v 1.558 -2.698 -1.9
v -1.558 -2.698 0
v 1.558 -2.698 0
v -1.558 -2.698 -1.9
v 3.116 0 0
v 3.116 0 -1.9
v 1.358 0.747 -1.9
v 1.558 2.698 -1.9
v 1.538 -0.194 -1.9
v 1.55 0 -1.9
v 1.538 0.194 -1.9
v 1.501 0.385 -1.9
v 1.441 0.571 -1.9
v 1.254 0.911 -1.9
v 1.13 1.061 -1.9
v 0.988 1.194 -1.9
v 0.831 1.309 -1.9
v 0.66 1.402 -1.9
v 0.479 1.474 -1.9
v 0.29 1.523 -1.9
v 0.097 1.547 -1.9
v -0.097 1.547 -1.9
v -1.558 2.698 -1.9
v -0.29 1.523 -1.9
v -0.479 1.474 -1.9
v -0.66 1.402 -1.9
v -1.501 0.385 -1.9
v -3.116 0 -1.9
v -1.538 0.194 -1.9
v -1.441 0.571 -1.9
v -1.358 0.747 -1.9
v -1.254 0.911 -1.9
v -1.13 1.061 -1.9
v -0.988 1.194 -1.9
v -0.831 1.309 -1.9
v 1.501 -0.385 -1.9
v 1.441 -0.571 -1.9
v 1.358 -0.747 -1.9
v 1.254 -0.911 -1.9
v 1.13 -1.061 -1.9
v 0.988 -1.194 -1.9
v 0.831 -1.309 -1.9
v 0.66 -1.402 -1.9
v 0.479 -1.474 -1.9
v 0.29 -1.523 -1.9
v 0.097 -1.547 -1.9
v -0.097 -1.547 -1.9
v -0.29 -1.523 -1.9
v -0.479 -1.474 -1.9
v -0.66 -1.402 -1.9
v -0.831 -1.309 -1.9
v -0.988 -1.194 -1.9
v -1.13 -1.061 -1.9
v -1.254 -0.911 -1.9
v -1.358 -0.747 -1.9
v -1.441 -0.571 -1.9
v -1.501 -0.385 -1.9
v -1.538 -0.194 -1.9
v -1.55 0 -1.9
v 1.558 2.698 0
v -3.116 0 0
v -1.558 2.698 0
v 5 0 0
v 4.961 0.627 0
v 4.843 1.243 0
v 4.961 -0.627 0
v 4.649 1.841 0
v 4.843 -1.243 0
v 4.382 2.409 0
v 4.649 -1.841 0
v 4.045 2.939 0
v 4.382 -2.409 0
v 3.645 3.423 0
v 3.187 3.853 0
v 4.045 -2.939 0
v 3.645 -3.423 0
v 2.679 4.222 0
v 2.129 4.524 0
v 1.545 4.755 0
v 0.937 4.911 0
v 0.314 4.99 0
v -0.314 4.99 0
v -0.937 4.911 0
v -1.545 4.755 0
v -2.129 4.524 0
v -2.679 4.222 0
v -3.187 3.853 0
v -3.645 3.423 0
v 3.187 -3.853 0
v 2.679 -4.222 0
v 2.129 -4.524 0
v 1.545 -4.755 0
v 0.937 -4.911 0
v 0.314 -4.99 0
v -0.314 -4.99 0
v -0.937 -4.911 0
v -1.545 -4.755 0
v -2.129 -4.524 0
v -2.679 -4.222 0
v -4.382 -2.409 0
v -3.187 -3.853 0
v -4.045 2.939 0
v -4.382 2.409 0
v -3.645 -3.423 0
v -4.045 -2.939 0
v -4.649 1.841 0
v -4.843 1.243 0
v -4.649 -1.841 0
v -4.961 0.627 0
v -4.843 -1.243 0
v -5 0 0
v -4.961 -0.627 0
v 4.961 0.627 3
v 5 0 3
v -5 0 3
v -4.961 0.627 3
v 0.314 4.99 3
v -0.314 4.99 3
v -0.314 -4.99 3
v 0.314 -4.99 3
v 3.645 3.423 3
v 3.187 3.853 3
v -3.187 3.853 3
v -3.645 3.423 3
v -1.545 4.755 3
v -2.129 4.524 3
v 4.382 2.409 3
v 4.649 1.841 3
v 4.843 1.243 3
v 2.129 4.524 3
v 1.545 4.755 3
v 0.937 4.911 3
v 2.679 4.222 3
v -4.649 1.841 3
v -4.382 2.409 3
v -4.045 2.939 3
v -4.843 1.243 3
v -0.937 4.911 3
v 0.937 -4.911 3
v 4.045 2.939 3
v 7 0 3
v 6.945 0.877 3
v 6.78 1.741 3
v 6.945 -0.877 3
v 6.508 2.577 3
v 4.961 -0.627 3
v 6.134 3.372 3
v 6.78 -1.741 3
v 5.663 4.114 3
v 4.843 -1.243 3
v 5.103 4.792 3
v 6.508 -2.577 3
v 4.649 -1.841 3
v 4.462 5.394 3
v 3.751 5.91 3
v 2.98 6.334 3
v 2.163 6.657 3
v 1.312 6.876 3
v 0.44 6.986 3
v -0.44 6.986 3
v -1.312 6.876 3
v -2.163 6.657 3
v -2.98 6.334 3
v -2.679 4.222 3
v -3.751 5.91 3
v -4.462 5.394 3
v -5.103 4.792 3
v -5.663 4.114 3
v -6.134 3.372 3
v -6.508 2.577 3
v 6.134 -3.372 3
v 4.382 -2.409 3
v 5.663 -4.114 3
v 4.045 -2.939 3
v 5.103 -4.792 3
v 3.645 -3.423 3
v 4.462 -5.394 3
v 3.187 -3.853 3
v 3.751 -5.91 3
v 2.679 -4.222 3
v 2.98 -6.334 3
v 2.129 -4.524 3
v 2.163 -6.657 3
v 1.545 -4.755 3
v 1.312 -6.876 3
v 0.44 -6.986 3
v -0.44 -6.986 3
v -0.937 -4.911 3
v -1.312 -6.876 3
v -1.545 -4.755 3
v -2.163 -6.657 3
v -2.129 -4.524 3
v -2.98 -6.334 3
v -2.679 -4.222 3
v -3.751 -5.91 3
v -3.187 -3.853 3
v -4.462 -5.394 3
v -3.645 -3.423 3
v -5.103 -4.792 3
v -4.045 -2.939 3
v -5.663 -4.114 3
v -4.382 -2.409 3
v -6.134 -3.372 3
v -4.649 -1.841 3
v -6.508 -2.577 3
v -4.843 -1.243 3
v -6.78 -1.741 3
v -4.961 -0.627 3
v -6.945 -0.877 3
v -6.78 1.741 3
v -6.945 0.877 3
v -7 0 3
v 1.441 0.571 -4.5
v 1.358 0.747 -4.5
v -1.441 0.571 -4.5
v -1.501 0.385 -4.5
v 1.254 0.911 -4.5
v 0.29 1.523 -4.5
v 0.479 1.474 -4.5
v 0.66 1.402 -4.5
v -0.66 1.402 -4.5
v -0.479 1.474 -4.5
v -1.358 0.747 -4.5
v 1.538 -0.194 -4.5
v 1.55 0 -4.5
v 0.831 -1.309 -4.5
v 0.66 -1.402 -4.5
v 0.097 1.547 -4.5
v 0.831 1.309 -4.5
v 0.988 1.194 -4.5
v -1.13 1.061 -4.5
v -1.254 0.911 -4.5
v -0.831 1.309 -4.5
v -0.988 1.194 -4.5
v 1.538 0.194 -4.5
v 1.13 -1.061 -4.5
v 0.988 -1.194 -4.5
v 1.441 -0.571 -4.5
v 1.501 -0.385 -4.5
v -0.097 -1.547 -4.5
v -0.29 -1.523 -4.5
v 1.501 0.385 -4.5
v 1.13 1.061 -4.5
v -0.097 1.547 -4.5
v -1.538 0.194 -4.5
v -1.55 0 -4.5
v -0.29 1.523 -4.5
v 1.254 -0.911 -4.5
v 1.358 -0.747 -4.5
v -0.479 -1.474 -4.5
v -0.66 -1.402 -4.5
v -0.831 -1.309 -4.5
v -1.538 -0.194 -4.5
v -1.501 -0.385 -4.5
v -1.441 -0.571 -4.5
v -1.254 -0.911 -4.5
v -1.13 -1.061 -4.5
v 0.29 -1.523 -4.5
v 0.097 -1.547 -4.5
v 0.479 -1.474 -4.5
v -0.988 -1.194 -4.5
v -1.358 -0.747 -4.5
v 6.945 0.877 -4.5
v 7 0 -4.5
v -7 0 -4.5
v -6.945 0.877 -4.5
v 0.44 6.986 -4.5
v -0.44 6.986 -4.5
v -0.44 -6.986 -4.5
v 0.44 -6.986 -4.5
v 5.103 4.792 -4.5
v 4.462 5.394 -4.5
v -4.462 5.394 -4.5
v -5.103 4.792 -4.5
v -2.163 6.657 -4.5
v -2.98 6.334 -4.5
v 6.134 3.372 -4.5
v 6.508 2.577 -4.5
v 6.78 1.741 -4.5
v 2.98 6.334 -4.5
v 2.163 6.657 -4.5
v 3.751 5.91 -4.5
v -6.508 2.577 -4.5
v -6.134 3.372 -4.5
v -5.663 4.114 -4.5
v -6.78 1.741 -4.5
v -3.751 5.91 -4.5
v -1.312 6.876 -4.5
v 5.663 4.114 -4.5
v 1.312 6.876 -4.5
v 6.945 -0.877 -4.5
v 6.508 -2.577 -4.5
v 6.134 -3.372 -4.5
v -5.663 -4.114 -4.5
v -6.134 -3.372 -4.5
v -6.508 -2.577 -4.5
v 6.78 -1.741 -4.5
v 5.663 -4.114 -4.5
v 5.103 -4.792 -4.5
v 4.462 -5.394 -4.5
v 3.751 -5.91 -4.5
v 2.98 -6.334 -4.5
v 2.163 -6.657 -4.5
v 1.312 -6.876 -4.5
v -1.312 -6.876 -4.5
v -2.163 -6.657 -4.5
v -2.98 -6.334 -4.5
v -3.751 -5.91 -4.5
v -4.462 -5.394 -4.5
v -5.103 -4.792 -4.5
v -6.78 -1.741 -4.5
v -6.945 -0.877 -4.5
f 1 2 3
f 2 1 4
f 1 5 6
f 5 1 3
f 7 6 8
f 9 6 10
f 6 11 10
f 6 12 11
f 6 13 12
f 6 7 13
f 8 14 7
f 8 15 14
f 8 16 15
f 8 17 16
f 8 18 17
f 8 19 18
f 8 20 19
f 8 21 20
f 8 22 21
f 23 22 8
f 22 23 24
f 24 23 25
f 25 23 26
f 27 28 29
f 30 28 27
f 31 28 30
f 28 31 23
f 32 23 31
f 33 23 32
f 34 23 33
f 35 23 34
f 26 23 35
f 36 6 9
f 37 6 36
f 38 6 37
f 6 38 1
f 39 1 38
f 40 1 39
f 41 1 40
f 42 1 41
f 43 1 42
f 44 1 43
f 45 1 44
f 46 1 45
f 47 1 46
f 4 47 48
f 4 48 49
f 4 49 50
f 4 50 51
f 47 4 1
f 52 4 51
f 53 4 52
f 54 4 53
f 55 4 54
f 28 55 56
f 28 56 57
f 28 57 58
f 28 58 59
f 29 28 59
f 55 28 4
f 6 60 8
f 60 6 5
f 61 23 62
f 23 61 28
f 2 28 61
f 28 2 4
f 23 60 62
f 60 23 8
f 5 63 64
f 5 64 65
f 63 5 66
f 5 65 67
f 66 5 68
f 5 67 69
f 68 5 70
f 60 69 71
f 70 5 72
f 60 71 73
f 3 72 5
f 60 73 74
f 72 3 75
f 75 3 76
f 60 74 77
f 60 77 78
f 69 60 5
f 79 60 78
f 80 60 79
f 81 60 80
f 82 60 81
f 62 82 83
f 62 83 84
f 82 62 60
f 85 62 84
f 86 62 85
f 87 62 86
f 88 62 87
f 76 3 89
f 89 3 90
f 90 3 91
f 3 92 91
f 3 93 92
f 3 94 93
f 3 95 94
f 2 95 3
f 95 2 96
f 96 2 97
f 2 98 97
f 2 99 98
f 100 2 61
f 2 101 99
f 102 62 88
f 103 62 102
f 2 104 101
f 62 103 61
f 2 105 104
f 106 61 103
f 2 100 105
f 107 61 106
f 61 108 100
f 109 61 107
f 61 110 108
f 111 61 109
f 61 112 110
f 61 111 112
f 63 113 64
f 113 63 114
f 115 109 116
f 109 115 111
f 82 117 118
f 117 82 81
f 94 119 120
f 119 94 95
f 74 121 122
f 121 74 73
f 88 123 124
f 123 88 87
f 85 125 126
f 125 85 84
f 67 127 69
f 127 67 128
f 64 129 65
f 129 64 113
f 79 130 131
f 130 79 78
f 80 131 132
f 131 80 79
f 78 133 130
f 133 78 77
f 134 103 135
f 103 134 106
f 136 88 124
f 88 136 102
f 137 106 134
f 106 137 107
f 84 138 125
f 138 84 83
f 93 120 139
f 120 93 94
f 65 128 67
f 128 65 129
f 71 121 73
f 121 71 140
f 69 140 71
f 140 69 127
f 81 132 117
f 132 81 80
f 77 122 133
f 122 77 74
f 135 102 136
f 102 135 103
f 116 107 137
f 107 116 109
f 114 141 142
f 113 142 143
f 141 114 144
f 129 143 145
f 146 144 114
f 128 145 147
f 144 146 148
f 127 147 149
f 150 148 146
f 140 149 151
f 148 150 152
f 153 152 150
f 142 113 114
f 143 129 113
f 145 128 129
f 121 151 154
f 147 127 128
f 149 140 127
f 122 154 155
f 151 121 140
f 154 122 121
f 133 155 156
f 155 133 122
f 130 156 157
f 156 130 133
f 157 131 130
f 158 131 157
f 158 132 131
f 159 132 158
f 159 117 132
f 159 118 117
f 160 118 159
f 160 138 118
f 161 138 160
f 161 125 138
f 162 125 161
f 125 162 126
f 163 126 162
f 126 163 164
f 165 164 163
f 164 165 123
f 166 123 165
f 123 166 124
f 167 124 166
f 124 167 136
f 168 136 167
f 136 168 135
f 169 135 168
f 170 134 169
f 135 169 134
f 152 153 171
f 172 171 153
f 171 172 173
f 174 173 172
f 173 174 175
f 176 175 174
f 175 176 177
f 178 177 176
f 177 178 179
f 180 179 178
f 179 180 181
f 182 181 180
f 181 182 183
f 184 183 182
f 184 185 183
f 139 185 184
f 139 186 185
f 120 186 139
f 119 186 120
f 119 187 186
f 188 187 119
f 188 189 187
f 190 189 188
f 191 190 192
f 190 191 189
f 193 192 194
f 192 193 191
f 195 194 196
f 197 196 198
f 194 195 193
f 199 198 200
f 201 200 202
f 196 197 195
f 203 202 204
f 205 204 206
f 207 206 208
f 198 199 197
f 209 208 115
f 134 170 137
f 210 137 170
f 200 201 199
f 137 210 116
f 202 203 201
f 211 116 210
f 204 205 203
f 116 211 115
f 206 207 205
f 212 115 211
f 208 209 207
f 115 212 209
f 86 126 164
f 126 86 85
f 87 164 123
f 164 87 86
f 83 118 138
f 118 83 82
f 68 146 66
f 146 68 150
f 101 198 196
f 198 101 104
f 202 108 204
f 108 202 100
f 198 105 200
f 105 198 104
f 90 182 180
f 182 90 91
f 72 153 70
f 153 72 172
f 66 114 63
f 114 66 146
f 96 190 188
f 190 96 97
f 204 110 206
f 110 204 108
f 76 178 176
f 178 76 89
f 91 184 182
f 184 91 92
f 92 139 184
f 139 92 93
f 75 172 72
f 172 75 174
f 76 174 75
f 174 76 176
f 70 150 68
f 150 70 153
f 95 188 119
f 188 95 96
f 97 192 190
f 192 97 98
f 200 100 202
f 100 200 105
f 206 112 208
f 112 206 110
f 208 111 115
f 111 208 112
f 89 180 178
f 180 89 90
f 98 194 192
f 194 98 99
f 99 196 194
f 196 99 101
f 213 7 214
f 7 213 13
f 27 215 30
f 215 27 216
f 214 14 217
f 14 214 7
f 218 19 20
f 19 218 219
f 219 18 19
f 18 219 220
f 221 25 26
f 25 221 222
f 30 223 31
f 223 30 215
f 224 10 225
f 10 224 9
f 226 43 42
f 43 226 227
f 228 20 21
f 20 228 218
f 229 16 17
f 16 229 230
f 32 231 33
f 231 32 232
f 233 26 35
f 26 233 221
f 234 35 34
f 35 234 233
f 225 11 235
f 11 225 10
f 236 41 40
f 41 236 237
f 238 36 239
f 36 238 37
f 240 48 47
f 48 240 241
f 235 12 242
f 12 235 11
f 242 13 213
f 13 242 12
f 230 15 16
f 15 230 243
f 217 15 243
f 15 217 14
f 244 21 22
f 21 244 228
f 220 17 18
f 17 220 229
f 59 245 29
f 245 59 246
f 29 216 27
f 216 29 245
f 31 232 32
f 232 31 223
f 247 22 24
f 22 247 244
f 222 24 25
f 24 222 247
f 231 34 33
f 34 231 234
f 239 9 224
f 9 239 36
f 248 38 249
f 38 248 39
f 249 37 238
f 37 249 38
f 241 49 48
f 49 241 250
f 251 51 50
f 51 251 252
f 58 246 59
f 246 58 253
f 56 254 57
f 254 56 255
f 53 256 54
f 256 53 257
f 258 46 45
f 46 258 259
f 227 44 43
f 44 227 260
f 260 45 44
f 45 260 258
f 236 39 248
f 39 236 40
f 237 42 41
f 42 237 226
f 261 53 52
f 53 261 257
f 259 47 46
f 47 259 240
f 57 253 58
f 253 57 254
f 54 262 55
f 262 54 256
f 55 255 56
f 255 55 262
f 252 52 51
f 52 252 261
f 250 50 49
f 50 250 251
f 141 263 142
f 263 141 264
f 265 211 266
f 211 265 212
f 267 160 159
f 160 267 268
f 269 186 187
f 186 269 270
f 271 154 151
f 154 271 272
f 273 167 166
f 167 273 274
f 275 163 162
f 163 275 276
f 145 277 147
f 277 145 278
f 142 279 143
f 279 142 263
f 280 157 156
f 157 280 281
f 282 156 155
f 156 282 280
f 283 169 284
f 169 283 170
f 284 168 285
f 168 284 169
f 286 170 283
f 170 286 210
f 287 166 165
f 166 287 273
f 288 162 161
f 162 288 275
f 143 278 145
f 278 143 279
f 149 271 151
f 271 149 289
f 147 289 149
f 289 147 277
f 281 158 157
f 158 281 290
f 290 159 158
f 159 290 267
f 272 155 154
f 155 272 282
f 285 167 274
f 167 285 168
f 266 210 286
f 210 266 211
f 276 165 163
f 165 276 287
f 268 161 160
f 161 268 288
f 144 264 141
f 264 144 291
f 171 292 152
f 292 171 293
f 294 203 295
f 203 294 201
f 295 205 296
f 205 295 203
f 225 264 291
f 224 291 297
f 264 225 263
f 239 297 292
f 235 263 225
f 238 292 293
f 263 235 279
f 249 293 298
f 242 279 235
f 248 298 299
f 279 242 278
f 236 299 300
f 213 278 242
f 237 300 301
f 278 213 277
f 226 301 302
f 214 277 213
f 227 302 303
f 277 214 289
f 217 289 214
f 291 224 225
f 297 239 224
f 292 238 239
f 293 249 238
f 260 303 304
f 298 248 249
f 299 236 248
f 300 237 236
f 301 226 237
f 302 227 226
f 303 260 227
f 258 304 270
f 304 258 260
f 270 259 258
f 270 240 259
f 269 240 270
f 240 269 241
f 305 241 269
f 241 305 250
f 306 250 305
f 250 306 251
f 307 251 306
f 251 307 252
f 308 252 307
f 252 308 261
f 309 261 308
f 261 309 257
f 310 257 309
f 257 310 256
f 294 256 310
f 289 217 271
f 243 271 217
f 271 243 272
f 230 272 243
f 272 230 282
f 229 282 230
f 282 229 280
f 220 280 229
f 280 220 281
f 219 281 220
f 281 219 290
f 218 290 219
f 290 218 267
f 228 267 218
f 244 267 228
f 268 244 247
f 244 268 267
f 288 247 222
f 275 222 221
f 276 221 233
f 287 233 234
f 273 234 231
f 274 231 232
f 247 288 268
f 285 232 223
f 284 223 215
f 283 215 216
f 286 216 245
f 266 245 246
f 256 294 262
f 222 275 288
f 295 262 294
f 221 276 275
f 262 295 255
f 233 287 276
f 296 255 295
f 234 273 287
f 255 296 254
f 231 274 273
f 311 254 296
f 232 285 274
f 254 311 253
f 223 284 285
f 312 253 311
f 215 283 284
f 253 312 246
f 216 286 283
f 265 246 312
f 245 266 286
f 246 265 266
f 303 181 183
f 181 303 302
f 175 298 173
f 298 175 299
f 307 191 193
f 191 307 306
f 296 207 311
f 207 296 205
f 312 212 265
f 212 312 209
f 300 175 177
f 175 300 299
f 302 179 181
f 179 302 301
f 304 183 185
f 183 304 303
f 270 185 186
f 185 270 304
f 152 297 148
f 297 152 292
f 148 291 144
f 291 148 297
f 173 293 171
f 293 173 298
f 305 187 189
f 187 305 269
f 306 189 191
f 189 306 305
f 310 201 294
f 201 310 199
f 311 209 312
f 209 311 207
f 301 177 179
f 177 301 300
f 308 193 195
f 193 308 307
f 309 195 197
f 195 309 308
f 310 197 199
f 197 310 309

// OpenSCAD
$fn = 50;


difference() {
	union() {
		translate(v = [0, 0, -4.5000000000]) {
			cylinder(h = 7.5000000000, r = 7.0000000000);
		}
	}
	union() {
		translate(v = [0, 0, 0]) {
			rotate(a = [0, 0, 0]) {
				difference() {
					union() {
						translate(v = [0, 0, -1.9000000000]) {
							linear_extrude(height = 1.9000000000) {
								polygon(points = [[3.1158000000, 0.0000000000], [1.5579000000, 2.6983619531], [-1.5579000000, 2.6983619531], [-3.1158000000, 0.0000000000], [-1.5579000000, -2.6983619531], [1.5579000000, -2.6983619531]]);
							}
						}
					}
					union();
				}
			}
		}
		#cylinder(h = 3, r = 5.0000000000);
		#translate(v = [0, 0, -100.0000000000]) {
			cylinder(h = 200, r = 1.5500000000);
		}
	}
}
